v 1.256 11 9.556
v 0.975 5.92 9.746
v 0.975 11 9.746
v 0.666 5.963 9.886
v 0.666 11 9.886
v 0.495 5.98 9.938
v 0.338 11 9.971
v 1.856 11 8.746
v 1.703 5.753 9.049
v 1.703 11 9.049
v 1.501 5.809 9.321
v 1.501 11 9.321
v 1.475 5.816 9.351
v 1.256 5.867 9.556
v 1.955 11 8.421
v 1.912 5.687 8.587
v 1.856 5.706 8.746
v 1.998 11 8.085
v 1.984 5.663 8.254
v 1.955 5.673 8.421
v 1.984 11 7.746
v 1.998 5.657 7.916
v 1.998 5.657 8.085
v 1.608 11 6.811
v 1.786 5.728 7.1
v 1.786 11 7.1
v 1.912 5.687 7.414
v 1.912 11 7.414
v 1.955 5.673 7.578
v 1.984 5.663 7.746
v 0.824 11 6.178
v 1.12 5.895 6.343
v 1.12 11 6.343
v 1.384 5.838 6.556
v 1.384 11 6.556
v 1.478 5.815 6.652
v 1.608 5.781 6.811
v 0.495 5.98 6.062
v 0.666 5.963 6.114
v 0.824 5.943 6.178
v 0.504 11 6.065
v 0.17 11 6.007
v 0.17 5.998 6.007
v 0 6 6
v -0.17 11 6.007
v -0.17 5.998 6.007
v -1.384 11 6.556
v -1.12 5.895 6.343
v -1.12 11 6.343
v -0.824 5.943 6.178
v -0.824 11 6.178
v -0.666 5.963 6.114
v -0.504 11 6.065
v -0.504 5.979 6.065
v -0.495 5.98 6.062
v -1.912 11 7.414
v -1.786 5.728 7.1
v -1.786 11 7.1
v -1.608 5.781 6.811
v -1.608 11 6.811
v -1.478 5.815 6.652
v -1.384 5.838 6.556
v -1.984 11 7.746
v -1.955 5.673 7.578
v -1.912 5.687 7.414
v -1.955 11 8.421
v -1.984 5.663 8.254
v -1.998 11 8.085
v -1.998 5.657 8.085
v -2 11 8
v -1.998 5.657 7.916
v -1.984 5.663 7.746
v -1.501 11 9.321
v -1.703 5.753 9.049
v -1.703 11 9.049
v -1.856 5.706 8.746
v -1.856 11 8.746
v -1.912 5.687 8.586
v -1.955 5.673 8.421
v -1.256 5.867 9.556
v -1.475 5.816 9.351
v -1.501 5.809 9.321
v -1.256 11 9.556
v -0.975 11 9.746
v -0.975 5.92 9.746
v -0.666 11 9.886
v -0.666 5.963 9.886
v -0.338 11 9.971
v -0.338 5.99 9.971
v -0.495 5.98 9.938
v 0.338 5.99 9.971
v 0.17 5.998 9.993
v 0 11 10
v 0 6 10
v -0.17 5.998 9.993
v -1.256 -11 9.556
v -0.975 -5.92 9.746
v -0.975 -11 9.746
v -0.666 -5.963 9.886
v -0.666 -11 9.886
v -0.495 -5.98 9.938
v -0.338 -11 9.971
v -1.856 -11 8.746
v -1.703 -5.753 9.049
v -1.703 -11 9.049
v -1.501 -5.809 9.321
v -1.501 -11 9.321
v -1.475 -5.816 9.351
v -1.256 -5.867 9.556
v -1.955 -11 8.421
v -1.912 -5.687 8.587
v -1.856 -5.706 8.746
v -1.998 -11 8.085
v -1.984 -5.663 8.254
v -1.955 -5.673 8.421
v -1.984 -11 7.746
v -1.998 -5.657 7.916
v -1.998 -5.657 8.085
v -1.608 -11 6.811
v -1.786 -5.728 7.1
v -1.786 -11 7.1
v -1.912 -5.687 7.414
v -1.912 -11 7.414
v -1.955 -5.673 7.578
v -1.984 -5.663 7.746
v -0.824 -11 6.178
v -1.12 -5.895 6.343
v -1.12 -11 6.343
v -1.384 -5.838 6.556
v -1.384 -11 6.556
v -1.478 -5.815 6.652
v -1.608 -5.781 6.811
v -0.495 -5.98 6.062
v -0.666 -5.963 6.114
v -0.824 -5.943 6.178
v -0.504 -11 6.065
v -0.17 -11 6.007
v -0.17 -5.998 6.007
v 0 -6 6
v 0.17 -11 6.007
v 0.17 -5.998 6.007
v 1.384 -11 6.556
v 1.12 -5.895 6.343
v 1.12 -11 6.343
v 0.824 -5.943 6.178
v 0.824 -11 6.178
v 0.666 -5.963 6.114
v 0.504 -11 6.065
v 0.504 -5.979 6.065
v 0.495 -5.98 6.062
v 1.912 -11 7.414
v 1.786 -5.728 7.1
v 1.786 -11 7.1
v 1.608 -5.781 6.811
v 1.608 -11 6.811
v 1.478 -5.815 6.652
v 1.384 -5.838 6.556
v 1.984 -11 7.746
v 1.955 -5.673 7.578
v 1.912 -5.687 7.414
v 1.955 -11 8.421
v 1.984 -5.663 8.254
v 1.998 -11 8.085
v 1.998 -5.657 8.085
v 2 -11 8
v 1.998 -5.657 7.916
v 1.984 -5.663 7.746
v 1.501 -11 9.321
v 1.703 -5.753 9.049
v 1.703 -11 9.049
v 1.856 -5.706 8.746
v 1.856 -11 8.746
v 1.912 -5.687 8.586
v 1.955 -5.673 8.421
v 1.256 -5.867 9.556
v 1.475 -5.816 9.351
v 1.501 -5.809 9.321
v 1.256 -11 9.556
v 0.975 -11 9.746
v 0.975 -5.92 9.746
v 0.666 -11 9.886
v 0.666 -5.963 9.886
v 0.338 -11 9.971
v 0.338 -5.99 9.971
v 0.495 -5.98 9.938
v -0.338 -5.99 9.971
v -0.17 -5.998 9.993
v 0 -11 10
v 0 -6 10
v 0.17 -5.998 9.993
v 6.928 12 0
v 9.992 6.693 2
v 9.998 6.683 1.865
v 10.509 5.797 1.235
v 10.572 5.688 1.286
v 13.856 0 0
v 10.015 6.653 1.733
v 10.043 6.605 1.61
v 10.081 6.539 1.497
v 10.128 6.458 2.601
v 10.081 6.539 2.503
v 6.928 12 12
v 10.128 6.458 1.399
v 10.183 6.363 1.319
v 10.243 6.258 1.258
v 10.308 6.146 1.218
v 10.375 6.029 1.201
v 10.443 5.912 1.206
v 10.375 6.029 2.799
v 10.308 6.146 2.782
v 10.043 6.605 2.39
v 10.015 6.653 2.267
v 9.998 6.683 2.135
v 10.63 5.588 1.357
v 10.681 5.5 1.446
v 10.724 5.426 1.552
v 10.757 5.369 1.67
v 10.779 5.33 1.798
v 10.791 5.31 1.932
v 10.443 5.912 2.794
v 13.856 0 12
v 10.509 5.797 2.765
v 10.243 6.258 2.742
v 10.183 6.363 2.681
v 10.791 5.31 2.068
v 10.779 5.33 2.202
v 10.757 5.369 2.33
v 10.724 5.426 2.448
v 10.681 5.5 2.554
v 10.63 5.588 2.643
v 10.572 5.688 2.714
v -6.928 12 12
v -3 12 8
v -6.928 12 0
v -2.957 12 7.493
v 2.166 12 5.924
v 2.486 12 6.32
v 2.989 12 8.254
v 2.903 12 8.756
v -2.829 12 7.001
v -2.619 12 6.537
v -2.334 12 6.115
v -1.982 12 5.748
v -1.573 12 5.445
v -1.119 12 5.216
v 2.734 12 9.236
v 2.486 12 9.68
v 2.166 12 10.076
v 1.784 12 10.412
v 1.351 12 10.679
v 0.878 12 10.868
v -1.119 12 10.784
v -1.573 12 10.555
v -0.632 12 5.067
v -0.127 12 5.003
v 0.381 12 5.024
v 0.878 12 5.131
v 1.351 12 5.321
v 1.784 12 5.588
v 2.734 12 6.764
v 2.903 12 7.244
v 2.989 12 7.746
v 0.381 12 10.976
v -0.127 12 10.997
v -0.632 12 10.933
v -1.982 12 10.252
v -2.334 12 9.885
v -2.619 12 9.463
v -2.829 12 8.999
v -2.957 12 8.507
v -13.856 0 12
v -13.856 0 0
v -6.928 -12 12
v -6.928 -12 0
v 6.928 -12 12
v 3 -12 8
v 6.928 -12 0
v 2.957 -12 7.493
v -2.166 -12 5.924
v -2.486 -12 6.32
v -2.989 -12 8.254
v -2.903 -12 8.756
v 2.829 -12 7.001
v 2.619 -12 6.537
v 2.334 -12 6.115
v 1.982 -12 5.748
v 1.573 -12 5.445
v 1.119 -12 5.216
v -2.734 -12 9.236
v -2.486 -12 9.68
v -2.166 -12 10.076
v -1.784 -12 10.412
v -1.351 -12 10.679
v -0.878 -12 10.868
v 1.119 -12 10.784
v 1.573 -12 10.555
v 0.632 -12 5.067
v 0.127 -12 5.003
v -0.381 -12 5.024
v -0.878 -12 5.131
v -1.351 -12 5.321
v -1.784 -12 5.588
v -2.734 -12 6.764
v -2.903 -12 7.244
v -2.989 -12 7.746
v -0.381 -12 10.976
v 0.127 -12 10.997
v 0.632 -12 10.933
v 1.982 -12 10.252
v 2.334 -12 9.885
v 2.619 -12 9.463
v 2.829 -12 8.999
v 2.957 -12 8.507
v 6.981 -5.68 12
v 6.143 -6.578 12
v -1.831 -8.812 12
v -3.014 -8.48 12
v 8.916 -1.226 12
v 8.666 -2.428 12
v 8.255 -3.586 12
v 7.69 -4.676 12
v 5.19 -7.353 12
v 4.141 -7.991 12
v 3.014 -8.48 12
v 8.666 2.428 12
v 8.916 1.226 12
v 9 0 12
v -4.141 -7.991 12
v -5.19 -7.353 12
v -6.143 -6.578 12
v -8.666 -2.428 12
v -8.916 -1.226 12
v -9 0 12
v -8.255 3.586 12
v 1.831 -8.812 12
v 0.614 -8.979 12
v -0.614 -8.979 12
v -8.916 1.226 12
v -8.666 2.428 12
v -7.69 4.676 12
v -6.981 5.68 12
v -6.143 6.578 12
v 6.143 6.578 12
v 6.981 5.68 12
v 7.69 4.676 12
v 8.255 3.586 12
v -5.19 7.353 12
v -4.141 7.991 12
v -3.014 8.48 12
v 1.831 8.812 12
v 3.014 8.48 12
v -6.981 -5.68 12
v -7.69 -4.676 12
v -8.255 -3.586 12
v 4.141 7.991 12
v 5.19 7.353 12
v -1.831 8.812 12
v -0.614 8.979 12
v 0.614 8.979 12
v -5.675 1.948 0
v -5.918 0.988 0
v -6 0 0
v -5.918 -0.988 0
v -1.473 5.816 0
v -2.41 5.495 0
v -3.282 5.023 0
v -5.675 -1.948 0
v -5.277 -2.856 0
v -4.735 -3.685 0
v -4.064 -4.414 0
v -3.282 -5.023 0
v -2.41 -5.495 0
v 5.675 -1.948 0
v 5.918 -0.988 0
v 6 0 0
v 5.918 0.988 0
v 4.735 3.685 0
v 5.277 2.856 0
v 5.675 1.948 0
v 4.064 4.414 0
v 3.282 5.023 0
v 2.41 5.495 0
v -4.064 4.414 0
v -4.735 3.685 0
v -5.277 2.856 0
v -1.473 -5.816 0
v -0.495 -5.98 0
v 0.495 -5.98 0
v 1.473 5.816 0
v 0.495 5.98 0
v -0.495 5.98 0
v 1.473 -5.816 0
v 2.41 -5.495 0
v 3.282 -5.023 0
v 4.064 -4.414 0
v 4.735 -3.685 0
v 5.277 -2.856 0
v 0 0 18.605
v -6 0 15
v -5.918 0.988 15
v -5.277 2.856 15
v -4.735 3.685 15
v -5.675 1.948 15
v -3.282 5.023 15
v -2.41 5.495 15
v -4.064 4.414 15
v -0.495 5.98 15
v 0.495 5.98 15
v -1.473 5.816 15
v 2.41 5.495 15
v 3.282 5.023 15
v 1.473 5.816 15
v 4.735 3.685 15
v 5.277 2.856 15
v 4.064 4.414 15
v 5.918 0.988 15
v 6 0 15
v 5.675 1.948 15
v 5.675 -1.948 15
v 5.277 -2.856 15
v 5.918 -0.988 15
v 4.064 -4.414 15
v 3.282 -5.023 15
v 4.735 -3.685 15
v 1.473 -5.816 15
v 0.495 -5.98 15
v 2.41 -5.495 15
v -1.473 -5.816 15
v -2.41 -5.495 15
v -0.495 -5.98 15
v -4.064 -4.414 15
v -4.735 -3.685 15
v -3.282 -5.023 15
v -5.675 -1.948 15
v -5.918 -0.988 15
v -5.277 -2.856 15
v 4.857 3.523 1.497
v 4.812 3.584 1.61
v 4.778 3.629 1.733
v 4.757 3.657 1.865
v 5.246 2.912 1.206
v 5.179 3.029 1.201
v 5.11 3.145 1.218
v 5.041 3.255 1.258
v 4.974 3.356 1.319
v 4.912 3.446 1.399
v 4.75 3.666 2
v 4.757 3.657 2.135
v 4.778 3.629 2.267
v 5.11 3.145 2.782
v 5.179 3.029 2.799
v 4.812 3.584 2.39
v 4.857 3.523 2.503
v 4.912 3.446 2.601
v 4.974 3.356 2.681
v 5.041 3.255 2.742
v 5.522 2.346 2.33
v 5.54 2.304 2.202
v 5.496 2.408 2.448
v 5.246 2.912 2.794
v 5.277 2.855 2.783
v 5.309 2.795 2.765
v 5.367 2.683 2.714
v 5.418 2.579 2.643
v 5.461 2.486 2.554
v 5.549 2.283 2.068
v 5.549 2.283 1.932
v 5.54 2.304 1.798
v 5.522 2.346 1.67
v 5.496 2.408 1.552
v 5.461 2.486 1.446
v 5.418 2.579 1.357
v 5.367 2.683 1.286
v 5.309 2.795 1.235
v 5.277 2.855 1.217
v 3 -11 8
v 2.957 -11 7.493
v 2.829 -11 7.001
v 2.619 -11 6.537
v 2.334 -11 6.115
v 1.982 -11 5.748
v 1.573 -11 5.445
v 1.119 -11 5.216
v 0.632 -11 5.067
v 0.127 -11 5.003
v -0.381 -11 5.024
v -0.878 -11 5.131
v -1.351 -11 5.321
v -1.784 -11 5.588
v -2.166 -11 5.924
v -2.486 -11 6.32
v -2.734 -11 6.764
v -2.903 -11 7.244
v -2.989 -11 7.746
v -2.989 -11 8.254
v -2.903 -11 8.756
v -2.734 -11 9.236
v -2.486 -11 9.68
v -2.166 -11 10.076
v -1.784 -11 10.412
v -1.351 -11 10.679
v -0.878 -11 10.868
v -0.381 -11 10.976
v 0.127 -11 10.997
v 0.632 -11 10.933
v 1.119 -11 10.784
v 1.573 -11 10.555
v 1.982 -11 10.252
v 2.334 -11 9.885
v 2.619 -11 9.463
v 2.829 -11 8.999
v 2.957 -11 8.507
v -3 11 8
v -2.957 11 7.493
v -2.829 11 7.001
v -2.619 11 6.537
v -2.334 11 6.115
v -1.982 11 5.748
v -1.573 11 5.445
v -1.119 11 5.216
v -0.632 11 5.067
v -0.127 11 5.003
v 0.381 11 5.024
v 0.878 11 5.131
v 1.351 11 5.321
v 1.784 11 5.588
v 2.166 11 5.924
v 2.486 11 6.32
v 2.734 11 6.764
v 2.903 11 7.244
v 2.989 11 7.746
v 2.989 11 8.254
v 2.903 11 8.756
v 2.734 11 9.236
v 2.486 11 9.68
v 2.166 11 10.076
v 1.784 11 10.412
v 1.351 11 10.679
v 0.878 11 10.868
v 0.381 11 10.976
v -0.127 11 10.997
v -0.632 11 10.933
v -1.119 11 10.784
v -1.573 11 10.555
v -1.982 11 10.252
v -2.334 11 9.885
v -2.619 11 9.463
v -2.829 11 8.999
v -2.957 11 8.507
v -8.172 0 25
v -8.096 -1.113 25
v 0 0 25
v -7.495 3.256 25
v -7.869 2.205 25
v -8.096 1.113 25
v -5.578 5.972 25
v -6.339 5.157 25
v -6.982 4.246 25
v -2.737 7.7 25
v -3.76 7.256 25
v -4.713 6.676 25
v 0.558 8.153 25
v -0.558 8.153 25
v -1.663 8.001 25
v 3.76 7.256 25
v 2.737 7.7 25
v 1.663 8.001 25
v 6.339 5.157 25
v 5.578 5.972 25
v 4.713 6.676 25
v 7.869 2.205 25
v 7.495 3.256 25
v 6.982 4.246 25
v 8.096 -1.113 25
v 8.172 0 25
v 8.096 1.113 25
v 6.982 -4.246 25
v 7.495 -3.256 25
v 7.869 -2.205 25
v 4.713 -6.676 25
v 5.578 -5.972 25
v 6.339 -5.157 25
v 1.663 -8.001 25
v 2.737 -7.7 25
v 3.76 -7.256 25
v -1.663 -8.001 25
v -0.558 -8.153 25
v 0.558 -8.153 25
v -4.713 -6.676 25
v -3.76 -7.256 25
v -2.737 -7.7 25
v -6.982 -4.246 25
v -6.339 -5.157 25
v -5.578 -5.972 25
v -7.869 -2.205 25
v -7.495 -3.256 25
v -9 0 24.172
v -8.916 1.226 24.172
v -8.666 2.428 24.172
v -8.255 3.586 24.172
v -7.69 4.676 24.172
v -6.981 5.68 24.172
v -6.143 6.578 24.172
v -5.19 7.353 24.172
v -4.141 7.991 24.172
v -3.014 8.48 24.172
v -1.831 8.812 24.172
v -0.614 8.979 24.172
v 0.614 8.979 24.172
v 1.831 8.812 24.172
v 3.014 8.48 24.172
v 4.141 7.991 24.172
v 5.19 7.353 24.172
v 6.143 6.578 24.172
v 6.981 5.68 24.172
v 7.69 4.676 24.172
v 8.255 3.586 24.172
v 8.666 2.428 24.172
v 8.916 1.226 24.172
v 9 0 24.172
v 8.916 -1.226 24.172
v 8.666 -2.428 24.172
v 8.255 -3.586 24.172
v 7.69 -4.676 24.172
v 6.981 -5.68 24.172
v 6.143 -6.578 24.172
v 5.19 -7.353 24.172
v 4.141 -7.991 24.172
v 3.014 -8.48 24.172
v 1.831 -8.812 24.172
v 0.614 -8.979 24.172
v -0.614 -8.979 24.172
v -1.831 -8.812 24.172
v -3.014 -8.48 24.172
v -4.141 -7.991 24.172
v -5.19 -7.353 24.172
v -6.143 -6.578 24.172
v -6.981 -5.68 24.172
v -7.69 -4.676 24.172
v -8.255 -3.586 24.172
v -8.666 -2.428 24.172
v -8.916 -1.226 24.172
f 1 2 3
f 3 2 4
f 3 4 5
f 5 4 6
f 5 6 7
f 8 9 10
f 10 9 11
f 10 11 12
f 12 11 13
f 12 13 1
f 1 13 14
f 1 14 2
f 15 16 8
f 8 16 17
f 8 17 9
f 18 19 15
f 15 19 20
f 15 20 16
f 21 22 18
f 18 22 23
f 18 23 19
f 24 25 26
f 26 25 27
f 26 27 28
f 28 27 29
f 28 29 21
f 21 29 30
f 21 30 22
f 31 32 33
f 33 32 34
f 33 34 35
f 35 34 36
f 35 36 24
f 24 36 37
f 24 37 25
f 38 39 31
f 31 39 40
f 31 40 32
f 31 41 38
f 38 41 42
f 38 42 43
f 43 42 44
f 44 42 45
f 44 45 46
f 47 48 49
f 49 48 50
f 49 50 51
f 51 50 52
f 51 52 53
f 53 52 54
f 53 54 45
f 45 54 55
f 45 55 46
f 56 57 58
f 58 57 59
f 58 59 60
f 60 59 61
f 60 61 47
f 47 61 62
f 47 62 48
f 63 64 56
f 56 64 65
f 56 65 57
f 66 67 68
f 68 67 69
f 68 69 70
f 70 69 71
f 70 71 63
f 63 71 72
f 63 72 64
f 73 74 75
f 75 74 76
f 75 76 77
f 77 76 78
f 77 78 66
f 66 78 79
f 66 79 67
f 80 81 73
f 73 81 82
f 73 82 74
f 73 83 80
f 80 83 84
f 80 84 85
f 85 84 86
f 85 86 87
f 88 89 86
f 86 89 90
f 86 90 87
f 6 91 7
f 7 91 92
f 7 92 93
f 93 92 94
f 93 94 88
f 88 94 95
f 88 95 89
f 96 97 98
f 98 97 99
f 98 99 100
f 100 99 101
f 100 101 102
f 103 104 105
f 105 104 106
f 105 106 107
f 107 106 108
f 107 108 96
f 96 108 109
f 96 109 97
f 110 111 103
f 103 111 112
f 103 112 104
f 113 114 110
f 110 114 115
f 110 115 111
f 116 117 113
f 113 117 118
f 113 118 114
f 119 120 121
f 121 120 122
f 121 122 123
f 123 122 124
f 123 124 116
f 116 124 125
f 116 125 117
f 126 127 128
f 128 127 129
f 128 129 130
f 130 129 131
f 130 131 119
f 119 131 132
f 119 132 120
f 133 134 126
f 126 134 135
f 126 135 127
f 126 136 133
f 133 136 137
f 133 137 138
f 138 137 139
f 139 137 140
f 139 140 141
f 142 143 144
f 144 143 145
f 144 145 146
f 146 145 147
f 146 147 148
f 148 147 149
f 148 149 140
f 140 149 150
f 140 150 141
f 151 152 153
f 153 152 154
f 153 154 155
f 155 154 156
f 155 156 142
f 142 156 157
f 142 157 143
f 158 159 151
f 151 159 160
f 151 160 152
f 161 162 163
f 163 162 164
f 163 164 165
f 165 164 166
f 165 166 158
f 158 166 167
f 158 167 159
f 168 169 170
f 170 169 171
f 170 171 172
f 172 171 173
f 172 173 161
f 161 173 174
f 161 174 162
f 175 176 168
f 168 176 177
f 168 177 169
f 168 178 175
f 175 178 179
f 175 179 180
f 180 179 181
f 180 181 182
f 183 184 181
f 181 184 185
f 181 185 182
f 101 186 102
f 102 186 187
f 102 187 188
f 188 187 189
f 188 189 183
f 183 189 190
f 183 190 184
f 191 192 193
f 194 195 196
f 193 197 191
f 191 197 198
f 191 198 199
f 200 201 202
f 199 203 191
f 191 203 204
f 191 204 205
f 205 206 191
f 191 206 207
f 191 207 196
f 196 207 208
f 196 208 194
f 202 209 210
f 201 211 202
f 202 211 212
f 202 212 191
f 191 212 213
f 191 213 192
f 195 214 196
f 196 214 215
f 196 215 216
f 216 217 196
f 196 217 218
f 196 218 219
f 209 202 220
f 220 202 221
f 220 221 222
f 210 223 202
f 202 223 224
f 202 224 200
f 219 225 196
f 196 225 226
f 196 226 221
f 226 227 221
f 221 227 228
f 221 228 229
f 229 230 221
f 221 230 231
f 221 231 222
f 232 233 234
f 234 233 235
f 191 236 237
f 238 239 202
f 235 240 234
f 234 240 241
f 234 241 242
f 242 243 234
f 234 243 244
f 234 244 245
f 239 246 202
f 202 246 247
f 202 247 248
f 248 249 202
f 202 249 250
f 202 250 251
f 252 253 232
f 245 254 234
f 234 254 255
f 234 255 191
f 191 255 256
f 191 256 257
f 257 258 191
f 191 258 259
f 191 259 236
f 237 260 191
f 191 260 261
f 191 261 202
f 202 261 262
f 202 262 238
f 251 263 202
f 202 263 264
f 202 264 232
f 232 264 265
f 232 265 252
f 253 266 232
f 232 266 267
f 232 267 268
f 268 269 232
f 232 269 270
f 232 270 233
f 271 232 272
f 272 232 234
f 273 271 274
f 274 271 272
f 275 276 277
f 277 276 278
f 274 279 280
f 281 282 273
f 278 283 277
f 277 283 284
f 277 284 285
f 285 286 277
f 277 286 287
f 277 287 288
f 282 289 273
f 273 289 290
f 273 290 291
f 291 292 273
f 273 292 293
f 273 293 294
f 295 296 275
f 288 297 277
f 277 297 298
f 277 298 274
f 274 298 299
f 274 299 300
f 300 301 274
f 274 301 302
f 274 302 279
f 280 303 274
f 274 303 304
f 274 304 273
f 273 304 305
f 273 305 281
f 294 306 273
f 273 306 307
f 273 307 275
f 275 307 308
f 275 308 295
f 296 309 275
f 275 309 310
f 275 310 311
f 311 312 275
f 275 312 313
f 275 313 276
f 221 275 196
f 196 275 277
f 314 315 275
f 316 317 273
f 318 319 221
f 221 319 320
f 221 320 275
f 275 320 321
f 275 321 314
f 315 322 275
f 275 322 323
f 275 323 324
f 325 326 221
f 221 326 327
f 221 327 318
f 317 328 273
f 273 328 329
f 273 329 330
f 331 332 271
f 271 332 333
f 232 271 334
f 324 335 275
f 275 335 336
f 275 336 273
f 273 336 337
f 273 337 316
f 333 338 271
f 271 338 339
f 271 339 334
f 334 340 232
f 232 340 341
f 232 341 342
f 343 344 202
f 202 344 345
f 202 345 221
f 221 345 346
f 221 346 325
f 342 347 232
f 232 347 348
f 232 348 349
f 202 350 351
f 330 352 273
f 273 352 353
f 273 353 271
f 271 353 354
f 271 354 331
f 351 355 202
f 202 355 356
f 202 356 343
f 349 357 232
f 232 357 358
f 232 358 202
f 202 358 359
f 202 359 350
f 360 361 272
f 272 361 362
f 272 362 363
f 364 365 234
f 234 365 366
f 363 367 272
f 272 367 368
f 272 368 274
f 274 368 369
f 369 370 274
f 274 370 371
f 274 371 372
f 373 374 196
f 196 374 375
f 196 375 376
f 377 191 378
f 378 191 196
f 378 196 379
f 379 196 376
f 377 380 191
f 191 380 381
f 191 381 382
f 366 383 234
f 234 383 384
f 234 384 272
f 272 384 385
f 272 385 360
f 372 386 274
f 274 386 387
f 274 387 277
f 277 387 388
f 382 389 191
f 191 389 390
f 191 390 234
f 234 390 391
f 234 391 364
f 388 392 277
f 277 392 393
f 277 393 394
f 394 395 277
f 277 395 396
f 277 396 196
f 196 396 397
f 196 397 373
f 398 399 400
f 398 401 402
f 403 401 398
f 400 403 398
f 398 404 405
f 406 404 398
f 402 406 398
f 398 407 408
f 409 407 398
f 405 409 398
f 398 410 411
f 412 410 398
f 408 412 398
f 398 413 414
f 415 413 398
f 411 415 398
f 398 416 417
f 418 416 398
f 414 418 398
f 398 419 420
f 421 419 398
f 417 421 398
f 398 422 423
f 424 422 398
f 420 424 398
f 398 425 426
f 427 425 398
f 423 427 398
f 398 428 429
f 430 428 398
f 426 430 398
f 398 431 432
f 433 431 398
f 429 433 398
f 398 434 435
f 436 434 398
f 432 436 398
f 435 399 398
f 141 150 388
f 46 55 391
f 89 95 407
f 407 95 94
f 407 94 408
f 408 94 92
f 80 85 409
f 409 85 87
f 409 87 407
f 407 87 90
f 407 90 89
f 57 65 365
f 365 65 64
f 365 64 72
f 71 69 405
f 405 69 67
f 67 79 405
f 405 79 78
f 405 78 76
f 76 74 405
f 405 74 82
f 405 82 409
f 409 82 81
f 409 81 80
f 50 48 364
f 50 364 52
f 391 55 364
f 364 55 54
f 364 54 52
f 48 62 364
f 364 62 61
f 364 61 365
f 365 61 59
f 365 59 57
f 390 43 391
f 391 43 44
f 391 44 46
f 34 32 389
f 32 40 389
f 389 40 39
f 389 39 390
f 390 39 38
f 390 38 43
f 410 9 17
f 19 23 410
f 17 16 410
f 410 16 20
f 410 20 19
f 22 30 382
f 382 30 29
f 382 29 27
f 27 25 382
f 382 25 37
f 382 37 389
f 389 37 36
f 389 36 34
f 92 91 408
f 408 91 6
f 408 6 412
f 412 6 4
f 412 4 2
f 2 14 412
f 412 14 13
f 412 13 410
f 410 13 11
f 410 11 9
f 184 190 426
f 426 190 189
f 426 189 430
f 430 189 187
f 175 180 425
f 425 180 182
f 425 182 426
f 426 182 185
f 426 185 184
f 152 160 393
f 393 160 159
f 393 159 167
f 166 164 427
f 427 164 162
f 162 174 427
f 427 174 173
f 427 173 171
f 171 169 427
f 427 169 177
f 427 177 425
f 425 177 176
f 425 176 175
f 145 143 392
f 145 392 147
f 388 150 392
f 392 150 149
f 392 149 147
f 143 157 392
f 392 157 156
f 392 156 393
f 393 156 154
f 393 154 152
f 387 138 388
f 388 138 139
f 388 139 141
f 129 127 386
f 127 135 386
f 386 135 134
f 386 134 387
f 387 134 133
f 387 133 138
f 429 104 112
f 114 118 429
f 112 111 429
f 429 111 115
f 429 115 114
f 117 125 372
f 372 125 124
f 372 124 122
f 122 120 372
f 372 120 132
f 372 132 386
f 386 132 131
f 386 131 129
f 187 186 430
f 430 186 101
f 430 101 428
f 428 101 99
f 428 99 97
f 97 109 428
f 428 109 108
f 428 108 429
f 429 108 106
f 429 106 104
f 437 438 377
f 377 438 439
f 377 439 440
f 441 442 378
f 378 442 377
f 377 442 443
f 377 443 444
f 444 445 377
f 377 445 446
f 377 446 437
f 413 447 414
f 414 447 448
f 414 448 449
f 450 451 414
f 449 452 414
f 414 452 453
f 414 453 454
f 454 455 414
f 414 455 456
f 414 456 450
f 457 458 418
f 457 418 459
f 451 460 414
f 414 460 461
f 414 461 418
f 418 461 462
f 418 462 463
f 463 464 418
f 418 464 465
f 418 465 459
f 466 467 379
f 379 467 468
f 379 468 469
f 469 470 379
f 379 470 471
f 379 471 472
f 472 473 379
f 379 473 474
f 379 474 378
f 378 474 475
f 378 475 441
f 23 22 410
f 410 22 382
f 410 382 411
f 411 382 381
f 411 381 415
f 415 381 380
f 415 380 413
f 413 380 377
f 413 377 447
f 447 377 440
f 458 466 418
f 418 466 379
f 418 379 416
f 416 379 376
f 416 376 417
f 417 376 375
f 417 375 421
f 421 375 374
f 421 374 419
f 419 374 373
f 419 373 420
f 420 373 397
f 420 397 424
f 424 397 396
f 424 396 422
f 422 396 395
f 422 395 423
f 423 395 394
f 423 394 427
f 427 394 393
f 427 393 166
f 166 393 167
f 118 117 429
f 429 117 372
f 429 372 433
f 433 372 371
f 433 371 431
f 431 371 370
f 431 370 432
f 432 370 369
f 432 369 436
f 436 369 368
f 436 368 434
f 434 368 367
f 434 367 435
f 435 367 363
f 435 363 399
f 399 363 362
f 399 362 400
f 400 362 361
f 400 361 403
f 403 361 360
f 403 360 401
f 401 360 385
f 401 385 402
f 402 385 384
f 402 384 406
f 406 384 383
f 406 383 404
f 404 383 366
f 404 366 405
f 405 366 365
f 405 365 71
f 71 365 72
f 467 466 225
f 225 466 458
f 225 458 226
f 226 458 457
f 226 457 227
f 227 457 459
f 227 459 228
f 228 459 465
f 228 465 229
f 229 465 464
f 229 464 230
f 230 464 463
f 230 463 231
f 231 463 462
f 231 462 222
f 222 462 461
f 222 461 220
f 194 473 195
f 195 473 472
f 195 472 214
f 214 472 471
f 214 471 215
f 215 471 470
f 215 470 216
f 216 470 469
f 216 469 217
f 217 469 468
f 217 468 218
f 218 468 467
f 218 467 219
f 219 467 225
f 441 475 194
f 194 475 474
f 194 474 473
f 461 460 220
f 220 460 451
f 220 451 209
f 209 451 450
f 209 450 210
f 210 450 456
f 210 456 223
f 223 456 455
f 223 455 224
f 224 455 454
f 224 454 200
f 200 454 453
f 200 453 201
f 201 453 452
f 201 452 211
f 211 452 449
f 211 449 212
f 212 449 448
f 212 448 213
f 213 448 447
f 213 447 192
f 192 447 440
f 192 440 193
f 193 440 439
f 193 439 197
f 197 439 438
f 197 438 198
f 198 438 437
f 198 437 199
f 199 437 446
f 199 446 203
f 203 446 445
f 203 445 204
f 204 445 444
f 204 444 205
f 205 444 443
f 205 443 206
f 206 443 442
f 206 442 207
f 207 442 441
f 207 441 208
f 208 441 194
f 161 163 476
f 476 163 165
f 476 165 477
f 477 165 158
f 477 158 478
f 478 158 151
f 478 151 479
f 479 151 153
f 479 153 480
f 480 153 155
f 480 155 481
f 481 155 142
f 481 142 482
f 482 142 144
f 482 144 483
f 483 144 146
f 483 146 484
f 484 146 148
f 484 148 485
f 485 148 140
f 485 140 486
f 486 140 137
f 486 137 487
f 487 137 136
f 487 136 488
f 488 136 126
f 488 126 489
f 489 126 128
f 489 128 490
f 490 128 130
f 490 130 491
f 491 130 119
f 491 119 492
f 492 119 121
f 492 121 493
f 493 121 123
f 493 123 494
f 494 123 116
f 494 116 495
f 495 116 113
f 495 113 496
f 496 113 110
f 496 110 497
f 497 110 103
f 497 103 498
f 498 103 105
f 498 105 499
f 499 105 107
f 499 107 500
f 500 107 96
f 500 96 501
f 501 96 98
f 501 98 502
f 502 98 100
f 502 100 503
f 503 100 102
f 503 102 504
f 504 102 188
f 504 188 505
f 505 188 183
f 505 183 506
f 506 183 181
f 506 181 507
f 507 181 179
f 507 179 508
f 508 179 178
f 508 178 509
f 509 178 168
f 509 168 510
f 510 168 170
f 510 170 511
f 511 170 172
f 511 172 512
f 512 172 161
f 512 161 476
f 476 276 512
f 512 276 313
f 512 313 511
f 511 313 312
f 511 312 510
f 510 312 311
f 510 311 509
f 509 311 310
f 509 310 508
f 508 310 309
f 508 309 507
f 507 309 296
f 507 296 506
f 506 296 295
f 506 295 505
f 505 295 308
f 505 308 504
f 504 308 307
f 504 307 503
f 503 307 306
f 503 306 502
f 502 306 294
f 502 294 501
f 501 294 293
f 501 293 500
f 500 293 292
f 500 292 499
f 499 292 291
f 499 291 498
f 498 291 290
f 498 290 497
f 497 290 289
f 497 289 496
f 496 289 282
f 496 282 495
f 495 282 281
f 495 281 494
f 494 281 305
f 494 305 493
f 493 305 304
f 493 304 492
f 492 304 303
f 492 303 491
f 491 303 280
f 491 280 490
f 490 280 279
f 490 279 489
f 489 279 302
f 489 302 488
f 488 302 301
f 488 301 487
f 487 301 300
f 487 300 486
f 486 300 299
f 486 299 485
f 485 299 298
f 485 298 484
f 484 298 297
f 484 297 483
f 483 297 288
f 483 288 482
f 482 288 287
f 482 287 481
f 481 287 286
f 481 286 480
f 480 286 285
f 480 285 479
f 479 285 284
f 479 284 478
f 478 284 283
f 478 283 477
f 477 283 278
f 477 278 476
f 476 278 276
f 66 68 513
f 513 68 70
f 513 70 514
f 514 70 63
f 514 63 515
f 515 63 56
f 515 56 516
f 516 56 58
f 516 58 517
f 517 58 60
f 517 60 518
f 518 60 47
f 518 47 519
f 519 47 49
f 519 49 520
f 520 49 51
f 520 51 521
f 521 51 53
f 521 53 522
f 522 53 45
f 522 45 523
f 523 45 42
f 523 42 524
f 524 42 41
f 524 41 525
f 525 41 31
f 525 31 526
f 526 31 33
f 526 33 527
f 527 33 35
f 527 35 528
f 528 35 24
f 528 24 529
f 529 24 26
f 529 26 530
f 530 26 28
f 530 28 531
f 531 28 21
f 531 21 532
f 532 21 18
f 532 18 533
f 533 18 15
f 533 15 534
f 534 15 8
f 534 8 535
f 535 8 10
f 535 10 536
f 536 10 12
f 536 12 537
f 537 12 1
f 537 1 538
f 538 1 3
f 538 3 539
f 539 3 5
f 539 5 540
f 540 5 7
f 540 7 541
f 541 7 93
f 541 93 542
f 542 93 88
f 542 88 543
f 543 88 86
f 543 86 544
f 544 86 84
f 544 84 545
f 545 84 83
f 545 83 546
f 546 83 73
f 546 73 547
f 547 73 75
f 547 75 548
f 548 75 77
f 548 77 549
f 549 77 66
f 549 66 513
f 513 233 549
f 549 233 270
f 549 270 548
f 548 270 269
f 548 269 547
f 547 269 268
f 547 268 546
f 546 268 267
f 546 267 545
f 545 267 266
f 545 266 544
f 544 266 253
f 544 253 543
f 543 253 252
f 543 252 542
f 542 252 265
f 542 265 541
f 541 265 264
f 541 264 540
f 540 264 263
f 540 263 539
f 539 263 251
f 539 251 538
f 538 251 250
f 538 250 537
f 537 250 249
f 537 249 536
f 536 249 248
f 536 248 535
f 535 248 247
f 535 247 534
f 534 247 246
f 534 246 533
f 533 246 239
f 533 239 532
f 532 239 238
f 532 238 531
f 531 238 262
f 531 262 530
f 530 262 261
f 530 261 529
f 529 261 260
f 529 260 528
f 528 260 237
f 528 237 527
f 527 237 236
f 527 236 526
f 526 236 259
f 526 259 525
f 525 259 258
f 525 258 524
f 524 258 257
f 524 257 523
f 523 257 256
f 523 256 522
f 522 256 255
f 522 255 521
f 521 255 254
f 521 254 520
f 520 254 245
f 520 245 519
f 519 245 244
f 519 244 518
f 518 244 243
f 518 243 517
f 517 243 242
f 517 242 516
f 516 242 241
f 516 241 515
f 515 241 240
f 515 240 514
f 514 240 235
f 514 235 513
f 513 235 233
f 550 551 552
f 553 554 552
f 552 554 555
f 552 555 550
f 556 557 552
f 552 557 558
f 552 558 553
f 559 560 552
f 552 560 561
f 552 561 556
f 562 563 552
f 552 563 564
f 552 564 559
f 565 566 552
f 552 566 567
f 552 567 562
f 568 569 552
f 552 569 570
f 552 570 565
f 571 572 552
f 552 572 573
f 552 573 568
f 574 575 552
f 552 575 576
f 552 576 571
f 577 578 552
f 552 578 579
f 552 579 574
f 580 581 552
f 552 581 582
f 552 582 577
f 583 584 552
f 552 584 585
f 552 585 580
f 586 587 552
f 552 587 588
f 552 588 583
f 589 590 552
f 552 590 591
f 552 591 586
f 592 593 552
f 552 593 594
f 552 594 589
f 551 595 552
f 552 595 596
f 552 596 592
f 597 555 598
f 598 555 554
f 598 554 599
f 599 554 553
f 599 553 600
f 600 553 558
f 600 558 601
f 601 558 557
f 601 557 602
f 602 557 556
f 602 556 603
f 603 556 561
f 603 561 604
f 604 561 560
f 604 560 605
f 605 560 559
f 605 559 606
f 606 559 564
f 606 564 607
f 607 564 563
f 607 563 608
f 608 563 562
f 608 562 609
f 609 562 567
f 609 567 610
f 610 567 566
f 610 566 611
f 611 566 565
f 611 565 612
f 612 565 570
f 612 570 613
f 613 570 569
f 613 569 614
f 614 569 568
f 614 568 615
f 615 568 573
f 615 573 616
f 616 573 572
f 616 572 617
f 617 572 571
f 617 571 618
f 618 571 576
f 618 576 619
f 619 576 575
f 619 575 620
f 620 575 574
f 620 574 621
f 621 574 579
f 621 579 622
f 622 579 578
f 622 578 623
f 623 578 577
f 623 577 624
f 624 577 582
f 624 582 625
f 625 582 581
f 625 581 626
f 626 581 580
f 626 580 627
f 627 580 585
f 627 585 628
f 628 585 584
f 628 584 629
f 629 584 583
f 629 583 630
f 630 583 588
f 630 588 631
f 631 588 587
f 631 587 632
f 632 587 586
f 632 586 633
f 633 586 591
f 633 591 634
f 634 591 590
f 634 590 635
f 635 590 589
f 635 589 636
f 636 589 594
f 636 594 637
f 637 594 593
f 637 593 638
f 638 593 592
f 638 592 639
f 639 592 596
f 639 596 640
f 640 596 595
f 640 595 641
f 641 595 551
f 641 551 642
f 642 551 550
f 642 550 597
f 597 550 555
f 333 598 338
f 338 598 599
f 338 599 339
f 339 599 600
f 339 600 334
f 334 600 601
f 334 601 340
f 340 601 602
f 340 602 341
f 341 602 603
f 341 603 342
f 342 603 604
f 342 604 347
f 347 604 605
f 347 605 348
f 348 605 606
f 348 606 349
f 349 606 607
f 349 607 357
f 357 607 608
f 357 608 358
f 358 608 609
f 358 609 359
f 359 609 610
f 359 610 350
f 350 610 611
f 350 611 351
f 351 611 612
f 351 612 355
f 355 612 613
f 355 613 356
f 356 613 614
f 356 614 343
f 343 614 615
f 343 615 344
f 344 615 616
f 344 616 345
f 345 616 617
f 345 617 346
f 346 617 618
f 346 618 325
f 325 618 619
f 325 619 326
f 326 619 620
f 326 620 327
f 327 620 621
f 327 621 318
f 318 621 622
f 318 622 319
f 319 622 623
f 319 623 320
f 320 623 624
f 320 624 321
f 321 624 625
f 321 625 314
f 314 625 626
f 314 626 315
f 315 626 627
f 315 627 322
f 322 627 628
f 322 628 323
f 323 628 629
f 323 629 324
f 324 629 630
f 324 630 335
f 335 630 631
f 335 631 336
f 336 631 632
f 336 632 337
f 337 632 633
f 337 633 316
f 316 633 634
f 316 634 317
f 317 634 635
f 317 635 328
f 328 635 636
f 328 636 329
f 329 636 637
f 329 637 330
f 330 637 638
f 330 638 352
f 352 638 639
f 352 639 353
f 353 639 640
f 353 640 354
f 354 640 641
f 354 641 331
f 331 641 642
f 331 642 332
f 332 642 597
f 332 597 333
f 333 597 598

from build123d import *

# Parameters (mm, degrees)
BOSS_EXTRUDE1_DEPTH        = 12
SKETCH2_R                  = 10
BOSS_EXTRUDE2_DEPTH        = 13
F_12_0MM_DOWEL_HOLE1_D     = 12
F_12_0MM_DOWEL_HOLE1_DEPTH = 15
F_12_0MM_DOWEL_HOLE1_TIP   = 3.605163714
F_4_0MM_DOWEL_HOLE1_D      = 4
M2X0_4_TAPPED_HOLE1_REACH  = 41.205
M2X0_4_TAPPED_HOLE1_BORE_R = 0.8
SKETCH11_R                 = 3
CUT_EXTRUDE1_DEPTH         = 1
CIRPATTERN1_COUNT          = 2
CUT_EXTRUDE2_START         = -3
SKETCH13_R                 = 10.893382682
SKETCH13_R_2               = 9
CUT_EXTRUDE2_DEPTH         = 3


# Read off the part's stored shape, not the designer's step: M18x1.5 Machine Threads Stud1
with BuildPart() as part:
    # Sketch1 → Boss-Extrude1 (new body)
    with BuildSketch(Plane.XY):
        Polygon((6.92820323, 12), (-6.92820323, 12), (-13.856406461, 0), (-6.92820323, -12), (6.92820323, -12), (13.856406461, 0), align=None)
    extrude(amount=BOSS_EXTRUDE1_DEPTH)

    # Sketch2 → Boss-Extrude2 (add)
    with BuildSketch(Plane.XY.offset(12)):
        with Locations(Location((0, 0, 0), (0, 0, 180))):
            Circle(SKETCH2_R)
    extrude(amount=BOSS_EXTRUDE2_DEPTH)

    # Ø12.0mm Dowel Hole1
    with Locations(Plane(origin=(0, 0, 0), x_dir=(-1, 0, 0), z_dir=(0, 0, -1))):
        with Locations((0, 0)):
            Hole(F_12_0MM_DOWEL_HOLE1_D / 2, depth=F_12_0MM_DOWEL_HOLE1_DEPTH)
            with Locations((0, 0, -(F_12_0MM_DOWEL_HOLE1_DEPTH + F_12_0MM_DOWEL_HOLE1_TIP / 2))):  # 118° drill point
                Cone(0, F_12_0MM_DOWEL_HOLE1_D / 2, F_12_0MM_DOWEL_HOLE1_TIP, mode=Mode.SUBTRACT)

    # Ø4.0mm Dowel Hole1 (through all)
    with Locations(Plane(origin=(0, 12, 0), x_dir=(1, 0, 0), z_dir=(0, 1, 0))):
        with Locations((0, -8)):
            Hole(F_4_0MM_DOWEL_HOLE1_D / 2)

    # M2x0.4 Tapped Hole1 bore → M2x0.4 Tapped Hole1 (cut, up to next)
    with BuildSketch(Plane(origin=(10.392304845, 6, 0), x_dir=(0, 0, -1), z_dir=(0.8660254037844387, 0.49999999999999994, 0)), mode=Mode.PRIVATE) as m2x0_4_tapped_hole1_sk1:
        with Locations((-2, 0)):
            Circle(M2X0_4_TAPPED_HOLE1_BORE_R)
    m2x0_4_tapped_hole1_tool1 = extrude(m2x0_4_tapped_hole1_sk1.sketch, amount=-M2X0_4_TAPPED_HOLE1_REACH, mode=Mode.PRIVATE) & part.part
    add(m2x0_4_tapped_hole1_tool1.solids().sort_by_distance((10.392305, 6, 2))[0], mode=Mode.SUBTRACT)

    # Sketch11 → Cut-Extrude1 (cut)
    with BuildSketch(Plane.XZ.offset(12)):
        with Locations((0, 8)):
            Circle(SKETCH11_R)
    cut_extrude1 = extrude(amount=-CUT_EXTRUDE1_DEPTH, mode=Mode.SUBTRACT)

    # CirPattern1: Cut-Extrude1 ×2 about axis
    cirpattern1_axis = Axis((0, 0, 25), (0, 0, -1))
    for i in range(1, CIRPATTERN1_COUNT):
        add(cut_extrude1.rotate(cirpattern1_axis, i * 360 / CIRPATTERN1_COUNT), mode=Mode.SUBTRACT)

    # M18x1.5 Machine Threads Stud1 outline → M18x1.5 Machine Threads Stud1 (revolve, cut)
    with BuildSketch(Plane.XZ):
        Polygon((10, 25), (8.172, 25), (9, 24.172), (9, 15), (10, 15), align=None)
    revolve(axis=Axis((0, 0, 0), (0, 0, 1)), mode=Mode.SUBTRACT)

    # Sketch13 → Cut-Extrude2 (cut)
    with BuildSketch(Plane.XY.offset(15).offset(CUT_EXTRUDE2_START)):
        Circle(SKETCH13_R)
        with Locations(Location((0, 0, 0), (0, 0, 180))):
            Circle(SKETCH13_R_2, mode=Mode.SUBTRACT)
    extrude(amount=CUT_EXTRUDE2_DEPTH, mode=Mode.SUBTRACT)


solid = part.part
